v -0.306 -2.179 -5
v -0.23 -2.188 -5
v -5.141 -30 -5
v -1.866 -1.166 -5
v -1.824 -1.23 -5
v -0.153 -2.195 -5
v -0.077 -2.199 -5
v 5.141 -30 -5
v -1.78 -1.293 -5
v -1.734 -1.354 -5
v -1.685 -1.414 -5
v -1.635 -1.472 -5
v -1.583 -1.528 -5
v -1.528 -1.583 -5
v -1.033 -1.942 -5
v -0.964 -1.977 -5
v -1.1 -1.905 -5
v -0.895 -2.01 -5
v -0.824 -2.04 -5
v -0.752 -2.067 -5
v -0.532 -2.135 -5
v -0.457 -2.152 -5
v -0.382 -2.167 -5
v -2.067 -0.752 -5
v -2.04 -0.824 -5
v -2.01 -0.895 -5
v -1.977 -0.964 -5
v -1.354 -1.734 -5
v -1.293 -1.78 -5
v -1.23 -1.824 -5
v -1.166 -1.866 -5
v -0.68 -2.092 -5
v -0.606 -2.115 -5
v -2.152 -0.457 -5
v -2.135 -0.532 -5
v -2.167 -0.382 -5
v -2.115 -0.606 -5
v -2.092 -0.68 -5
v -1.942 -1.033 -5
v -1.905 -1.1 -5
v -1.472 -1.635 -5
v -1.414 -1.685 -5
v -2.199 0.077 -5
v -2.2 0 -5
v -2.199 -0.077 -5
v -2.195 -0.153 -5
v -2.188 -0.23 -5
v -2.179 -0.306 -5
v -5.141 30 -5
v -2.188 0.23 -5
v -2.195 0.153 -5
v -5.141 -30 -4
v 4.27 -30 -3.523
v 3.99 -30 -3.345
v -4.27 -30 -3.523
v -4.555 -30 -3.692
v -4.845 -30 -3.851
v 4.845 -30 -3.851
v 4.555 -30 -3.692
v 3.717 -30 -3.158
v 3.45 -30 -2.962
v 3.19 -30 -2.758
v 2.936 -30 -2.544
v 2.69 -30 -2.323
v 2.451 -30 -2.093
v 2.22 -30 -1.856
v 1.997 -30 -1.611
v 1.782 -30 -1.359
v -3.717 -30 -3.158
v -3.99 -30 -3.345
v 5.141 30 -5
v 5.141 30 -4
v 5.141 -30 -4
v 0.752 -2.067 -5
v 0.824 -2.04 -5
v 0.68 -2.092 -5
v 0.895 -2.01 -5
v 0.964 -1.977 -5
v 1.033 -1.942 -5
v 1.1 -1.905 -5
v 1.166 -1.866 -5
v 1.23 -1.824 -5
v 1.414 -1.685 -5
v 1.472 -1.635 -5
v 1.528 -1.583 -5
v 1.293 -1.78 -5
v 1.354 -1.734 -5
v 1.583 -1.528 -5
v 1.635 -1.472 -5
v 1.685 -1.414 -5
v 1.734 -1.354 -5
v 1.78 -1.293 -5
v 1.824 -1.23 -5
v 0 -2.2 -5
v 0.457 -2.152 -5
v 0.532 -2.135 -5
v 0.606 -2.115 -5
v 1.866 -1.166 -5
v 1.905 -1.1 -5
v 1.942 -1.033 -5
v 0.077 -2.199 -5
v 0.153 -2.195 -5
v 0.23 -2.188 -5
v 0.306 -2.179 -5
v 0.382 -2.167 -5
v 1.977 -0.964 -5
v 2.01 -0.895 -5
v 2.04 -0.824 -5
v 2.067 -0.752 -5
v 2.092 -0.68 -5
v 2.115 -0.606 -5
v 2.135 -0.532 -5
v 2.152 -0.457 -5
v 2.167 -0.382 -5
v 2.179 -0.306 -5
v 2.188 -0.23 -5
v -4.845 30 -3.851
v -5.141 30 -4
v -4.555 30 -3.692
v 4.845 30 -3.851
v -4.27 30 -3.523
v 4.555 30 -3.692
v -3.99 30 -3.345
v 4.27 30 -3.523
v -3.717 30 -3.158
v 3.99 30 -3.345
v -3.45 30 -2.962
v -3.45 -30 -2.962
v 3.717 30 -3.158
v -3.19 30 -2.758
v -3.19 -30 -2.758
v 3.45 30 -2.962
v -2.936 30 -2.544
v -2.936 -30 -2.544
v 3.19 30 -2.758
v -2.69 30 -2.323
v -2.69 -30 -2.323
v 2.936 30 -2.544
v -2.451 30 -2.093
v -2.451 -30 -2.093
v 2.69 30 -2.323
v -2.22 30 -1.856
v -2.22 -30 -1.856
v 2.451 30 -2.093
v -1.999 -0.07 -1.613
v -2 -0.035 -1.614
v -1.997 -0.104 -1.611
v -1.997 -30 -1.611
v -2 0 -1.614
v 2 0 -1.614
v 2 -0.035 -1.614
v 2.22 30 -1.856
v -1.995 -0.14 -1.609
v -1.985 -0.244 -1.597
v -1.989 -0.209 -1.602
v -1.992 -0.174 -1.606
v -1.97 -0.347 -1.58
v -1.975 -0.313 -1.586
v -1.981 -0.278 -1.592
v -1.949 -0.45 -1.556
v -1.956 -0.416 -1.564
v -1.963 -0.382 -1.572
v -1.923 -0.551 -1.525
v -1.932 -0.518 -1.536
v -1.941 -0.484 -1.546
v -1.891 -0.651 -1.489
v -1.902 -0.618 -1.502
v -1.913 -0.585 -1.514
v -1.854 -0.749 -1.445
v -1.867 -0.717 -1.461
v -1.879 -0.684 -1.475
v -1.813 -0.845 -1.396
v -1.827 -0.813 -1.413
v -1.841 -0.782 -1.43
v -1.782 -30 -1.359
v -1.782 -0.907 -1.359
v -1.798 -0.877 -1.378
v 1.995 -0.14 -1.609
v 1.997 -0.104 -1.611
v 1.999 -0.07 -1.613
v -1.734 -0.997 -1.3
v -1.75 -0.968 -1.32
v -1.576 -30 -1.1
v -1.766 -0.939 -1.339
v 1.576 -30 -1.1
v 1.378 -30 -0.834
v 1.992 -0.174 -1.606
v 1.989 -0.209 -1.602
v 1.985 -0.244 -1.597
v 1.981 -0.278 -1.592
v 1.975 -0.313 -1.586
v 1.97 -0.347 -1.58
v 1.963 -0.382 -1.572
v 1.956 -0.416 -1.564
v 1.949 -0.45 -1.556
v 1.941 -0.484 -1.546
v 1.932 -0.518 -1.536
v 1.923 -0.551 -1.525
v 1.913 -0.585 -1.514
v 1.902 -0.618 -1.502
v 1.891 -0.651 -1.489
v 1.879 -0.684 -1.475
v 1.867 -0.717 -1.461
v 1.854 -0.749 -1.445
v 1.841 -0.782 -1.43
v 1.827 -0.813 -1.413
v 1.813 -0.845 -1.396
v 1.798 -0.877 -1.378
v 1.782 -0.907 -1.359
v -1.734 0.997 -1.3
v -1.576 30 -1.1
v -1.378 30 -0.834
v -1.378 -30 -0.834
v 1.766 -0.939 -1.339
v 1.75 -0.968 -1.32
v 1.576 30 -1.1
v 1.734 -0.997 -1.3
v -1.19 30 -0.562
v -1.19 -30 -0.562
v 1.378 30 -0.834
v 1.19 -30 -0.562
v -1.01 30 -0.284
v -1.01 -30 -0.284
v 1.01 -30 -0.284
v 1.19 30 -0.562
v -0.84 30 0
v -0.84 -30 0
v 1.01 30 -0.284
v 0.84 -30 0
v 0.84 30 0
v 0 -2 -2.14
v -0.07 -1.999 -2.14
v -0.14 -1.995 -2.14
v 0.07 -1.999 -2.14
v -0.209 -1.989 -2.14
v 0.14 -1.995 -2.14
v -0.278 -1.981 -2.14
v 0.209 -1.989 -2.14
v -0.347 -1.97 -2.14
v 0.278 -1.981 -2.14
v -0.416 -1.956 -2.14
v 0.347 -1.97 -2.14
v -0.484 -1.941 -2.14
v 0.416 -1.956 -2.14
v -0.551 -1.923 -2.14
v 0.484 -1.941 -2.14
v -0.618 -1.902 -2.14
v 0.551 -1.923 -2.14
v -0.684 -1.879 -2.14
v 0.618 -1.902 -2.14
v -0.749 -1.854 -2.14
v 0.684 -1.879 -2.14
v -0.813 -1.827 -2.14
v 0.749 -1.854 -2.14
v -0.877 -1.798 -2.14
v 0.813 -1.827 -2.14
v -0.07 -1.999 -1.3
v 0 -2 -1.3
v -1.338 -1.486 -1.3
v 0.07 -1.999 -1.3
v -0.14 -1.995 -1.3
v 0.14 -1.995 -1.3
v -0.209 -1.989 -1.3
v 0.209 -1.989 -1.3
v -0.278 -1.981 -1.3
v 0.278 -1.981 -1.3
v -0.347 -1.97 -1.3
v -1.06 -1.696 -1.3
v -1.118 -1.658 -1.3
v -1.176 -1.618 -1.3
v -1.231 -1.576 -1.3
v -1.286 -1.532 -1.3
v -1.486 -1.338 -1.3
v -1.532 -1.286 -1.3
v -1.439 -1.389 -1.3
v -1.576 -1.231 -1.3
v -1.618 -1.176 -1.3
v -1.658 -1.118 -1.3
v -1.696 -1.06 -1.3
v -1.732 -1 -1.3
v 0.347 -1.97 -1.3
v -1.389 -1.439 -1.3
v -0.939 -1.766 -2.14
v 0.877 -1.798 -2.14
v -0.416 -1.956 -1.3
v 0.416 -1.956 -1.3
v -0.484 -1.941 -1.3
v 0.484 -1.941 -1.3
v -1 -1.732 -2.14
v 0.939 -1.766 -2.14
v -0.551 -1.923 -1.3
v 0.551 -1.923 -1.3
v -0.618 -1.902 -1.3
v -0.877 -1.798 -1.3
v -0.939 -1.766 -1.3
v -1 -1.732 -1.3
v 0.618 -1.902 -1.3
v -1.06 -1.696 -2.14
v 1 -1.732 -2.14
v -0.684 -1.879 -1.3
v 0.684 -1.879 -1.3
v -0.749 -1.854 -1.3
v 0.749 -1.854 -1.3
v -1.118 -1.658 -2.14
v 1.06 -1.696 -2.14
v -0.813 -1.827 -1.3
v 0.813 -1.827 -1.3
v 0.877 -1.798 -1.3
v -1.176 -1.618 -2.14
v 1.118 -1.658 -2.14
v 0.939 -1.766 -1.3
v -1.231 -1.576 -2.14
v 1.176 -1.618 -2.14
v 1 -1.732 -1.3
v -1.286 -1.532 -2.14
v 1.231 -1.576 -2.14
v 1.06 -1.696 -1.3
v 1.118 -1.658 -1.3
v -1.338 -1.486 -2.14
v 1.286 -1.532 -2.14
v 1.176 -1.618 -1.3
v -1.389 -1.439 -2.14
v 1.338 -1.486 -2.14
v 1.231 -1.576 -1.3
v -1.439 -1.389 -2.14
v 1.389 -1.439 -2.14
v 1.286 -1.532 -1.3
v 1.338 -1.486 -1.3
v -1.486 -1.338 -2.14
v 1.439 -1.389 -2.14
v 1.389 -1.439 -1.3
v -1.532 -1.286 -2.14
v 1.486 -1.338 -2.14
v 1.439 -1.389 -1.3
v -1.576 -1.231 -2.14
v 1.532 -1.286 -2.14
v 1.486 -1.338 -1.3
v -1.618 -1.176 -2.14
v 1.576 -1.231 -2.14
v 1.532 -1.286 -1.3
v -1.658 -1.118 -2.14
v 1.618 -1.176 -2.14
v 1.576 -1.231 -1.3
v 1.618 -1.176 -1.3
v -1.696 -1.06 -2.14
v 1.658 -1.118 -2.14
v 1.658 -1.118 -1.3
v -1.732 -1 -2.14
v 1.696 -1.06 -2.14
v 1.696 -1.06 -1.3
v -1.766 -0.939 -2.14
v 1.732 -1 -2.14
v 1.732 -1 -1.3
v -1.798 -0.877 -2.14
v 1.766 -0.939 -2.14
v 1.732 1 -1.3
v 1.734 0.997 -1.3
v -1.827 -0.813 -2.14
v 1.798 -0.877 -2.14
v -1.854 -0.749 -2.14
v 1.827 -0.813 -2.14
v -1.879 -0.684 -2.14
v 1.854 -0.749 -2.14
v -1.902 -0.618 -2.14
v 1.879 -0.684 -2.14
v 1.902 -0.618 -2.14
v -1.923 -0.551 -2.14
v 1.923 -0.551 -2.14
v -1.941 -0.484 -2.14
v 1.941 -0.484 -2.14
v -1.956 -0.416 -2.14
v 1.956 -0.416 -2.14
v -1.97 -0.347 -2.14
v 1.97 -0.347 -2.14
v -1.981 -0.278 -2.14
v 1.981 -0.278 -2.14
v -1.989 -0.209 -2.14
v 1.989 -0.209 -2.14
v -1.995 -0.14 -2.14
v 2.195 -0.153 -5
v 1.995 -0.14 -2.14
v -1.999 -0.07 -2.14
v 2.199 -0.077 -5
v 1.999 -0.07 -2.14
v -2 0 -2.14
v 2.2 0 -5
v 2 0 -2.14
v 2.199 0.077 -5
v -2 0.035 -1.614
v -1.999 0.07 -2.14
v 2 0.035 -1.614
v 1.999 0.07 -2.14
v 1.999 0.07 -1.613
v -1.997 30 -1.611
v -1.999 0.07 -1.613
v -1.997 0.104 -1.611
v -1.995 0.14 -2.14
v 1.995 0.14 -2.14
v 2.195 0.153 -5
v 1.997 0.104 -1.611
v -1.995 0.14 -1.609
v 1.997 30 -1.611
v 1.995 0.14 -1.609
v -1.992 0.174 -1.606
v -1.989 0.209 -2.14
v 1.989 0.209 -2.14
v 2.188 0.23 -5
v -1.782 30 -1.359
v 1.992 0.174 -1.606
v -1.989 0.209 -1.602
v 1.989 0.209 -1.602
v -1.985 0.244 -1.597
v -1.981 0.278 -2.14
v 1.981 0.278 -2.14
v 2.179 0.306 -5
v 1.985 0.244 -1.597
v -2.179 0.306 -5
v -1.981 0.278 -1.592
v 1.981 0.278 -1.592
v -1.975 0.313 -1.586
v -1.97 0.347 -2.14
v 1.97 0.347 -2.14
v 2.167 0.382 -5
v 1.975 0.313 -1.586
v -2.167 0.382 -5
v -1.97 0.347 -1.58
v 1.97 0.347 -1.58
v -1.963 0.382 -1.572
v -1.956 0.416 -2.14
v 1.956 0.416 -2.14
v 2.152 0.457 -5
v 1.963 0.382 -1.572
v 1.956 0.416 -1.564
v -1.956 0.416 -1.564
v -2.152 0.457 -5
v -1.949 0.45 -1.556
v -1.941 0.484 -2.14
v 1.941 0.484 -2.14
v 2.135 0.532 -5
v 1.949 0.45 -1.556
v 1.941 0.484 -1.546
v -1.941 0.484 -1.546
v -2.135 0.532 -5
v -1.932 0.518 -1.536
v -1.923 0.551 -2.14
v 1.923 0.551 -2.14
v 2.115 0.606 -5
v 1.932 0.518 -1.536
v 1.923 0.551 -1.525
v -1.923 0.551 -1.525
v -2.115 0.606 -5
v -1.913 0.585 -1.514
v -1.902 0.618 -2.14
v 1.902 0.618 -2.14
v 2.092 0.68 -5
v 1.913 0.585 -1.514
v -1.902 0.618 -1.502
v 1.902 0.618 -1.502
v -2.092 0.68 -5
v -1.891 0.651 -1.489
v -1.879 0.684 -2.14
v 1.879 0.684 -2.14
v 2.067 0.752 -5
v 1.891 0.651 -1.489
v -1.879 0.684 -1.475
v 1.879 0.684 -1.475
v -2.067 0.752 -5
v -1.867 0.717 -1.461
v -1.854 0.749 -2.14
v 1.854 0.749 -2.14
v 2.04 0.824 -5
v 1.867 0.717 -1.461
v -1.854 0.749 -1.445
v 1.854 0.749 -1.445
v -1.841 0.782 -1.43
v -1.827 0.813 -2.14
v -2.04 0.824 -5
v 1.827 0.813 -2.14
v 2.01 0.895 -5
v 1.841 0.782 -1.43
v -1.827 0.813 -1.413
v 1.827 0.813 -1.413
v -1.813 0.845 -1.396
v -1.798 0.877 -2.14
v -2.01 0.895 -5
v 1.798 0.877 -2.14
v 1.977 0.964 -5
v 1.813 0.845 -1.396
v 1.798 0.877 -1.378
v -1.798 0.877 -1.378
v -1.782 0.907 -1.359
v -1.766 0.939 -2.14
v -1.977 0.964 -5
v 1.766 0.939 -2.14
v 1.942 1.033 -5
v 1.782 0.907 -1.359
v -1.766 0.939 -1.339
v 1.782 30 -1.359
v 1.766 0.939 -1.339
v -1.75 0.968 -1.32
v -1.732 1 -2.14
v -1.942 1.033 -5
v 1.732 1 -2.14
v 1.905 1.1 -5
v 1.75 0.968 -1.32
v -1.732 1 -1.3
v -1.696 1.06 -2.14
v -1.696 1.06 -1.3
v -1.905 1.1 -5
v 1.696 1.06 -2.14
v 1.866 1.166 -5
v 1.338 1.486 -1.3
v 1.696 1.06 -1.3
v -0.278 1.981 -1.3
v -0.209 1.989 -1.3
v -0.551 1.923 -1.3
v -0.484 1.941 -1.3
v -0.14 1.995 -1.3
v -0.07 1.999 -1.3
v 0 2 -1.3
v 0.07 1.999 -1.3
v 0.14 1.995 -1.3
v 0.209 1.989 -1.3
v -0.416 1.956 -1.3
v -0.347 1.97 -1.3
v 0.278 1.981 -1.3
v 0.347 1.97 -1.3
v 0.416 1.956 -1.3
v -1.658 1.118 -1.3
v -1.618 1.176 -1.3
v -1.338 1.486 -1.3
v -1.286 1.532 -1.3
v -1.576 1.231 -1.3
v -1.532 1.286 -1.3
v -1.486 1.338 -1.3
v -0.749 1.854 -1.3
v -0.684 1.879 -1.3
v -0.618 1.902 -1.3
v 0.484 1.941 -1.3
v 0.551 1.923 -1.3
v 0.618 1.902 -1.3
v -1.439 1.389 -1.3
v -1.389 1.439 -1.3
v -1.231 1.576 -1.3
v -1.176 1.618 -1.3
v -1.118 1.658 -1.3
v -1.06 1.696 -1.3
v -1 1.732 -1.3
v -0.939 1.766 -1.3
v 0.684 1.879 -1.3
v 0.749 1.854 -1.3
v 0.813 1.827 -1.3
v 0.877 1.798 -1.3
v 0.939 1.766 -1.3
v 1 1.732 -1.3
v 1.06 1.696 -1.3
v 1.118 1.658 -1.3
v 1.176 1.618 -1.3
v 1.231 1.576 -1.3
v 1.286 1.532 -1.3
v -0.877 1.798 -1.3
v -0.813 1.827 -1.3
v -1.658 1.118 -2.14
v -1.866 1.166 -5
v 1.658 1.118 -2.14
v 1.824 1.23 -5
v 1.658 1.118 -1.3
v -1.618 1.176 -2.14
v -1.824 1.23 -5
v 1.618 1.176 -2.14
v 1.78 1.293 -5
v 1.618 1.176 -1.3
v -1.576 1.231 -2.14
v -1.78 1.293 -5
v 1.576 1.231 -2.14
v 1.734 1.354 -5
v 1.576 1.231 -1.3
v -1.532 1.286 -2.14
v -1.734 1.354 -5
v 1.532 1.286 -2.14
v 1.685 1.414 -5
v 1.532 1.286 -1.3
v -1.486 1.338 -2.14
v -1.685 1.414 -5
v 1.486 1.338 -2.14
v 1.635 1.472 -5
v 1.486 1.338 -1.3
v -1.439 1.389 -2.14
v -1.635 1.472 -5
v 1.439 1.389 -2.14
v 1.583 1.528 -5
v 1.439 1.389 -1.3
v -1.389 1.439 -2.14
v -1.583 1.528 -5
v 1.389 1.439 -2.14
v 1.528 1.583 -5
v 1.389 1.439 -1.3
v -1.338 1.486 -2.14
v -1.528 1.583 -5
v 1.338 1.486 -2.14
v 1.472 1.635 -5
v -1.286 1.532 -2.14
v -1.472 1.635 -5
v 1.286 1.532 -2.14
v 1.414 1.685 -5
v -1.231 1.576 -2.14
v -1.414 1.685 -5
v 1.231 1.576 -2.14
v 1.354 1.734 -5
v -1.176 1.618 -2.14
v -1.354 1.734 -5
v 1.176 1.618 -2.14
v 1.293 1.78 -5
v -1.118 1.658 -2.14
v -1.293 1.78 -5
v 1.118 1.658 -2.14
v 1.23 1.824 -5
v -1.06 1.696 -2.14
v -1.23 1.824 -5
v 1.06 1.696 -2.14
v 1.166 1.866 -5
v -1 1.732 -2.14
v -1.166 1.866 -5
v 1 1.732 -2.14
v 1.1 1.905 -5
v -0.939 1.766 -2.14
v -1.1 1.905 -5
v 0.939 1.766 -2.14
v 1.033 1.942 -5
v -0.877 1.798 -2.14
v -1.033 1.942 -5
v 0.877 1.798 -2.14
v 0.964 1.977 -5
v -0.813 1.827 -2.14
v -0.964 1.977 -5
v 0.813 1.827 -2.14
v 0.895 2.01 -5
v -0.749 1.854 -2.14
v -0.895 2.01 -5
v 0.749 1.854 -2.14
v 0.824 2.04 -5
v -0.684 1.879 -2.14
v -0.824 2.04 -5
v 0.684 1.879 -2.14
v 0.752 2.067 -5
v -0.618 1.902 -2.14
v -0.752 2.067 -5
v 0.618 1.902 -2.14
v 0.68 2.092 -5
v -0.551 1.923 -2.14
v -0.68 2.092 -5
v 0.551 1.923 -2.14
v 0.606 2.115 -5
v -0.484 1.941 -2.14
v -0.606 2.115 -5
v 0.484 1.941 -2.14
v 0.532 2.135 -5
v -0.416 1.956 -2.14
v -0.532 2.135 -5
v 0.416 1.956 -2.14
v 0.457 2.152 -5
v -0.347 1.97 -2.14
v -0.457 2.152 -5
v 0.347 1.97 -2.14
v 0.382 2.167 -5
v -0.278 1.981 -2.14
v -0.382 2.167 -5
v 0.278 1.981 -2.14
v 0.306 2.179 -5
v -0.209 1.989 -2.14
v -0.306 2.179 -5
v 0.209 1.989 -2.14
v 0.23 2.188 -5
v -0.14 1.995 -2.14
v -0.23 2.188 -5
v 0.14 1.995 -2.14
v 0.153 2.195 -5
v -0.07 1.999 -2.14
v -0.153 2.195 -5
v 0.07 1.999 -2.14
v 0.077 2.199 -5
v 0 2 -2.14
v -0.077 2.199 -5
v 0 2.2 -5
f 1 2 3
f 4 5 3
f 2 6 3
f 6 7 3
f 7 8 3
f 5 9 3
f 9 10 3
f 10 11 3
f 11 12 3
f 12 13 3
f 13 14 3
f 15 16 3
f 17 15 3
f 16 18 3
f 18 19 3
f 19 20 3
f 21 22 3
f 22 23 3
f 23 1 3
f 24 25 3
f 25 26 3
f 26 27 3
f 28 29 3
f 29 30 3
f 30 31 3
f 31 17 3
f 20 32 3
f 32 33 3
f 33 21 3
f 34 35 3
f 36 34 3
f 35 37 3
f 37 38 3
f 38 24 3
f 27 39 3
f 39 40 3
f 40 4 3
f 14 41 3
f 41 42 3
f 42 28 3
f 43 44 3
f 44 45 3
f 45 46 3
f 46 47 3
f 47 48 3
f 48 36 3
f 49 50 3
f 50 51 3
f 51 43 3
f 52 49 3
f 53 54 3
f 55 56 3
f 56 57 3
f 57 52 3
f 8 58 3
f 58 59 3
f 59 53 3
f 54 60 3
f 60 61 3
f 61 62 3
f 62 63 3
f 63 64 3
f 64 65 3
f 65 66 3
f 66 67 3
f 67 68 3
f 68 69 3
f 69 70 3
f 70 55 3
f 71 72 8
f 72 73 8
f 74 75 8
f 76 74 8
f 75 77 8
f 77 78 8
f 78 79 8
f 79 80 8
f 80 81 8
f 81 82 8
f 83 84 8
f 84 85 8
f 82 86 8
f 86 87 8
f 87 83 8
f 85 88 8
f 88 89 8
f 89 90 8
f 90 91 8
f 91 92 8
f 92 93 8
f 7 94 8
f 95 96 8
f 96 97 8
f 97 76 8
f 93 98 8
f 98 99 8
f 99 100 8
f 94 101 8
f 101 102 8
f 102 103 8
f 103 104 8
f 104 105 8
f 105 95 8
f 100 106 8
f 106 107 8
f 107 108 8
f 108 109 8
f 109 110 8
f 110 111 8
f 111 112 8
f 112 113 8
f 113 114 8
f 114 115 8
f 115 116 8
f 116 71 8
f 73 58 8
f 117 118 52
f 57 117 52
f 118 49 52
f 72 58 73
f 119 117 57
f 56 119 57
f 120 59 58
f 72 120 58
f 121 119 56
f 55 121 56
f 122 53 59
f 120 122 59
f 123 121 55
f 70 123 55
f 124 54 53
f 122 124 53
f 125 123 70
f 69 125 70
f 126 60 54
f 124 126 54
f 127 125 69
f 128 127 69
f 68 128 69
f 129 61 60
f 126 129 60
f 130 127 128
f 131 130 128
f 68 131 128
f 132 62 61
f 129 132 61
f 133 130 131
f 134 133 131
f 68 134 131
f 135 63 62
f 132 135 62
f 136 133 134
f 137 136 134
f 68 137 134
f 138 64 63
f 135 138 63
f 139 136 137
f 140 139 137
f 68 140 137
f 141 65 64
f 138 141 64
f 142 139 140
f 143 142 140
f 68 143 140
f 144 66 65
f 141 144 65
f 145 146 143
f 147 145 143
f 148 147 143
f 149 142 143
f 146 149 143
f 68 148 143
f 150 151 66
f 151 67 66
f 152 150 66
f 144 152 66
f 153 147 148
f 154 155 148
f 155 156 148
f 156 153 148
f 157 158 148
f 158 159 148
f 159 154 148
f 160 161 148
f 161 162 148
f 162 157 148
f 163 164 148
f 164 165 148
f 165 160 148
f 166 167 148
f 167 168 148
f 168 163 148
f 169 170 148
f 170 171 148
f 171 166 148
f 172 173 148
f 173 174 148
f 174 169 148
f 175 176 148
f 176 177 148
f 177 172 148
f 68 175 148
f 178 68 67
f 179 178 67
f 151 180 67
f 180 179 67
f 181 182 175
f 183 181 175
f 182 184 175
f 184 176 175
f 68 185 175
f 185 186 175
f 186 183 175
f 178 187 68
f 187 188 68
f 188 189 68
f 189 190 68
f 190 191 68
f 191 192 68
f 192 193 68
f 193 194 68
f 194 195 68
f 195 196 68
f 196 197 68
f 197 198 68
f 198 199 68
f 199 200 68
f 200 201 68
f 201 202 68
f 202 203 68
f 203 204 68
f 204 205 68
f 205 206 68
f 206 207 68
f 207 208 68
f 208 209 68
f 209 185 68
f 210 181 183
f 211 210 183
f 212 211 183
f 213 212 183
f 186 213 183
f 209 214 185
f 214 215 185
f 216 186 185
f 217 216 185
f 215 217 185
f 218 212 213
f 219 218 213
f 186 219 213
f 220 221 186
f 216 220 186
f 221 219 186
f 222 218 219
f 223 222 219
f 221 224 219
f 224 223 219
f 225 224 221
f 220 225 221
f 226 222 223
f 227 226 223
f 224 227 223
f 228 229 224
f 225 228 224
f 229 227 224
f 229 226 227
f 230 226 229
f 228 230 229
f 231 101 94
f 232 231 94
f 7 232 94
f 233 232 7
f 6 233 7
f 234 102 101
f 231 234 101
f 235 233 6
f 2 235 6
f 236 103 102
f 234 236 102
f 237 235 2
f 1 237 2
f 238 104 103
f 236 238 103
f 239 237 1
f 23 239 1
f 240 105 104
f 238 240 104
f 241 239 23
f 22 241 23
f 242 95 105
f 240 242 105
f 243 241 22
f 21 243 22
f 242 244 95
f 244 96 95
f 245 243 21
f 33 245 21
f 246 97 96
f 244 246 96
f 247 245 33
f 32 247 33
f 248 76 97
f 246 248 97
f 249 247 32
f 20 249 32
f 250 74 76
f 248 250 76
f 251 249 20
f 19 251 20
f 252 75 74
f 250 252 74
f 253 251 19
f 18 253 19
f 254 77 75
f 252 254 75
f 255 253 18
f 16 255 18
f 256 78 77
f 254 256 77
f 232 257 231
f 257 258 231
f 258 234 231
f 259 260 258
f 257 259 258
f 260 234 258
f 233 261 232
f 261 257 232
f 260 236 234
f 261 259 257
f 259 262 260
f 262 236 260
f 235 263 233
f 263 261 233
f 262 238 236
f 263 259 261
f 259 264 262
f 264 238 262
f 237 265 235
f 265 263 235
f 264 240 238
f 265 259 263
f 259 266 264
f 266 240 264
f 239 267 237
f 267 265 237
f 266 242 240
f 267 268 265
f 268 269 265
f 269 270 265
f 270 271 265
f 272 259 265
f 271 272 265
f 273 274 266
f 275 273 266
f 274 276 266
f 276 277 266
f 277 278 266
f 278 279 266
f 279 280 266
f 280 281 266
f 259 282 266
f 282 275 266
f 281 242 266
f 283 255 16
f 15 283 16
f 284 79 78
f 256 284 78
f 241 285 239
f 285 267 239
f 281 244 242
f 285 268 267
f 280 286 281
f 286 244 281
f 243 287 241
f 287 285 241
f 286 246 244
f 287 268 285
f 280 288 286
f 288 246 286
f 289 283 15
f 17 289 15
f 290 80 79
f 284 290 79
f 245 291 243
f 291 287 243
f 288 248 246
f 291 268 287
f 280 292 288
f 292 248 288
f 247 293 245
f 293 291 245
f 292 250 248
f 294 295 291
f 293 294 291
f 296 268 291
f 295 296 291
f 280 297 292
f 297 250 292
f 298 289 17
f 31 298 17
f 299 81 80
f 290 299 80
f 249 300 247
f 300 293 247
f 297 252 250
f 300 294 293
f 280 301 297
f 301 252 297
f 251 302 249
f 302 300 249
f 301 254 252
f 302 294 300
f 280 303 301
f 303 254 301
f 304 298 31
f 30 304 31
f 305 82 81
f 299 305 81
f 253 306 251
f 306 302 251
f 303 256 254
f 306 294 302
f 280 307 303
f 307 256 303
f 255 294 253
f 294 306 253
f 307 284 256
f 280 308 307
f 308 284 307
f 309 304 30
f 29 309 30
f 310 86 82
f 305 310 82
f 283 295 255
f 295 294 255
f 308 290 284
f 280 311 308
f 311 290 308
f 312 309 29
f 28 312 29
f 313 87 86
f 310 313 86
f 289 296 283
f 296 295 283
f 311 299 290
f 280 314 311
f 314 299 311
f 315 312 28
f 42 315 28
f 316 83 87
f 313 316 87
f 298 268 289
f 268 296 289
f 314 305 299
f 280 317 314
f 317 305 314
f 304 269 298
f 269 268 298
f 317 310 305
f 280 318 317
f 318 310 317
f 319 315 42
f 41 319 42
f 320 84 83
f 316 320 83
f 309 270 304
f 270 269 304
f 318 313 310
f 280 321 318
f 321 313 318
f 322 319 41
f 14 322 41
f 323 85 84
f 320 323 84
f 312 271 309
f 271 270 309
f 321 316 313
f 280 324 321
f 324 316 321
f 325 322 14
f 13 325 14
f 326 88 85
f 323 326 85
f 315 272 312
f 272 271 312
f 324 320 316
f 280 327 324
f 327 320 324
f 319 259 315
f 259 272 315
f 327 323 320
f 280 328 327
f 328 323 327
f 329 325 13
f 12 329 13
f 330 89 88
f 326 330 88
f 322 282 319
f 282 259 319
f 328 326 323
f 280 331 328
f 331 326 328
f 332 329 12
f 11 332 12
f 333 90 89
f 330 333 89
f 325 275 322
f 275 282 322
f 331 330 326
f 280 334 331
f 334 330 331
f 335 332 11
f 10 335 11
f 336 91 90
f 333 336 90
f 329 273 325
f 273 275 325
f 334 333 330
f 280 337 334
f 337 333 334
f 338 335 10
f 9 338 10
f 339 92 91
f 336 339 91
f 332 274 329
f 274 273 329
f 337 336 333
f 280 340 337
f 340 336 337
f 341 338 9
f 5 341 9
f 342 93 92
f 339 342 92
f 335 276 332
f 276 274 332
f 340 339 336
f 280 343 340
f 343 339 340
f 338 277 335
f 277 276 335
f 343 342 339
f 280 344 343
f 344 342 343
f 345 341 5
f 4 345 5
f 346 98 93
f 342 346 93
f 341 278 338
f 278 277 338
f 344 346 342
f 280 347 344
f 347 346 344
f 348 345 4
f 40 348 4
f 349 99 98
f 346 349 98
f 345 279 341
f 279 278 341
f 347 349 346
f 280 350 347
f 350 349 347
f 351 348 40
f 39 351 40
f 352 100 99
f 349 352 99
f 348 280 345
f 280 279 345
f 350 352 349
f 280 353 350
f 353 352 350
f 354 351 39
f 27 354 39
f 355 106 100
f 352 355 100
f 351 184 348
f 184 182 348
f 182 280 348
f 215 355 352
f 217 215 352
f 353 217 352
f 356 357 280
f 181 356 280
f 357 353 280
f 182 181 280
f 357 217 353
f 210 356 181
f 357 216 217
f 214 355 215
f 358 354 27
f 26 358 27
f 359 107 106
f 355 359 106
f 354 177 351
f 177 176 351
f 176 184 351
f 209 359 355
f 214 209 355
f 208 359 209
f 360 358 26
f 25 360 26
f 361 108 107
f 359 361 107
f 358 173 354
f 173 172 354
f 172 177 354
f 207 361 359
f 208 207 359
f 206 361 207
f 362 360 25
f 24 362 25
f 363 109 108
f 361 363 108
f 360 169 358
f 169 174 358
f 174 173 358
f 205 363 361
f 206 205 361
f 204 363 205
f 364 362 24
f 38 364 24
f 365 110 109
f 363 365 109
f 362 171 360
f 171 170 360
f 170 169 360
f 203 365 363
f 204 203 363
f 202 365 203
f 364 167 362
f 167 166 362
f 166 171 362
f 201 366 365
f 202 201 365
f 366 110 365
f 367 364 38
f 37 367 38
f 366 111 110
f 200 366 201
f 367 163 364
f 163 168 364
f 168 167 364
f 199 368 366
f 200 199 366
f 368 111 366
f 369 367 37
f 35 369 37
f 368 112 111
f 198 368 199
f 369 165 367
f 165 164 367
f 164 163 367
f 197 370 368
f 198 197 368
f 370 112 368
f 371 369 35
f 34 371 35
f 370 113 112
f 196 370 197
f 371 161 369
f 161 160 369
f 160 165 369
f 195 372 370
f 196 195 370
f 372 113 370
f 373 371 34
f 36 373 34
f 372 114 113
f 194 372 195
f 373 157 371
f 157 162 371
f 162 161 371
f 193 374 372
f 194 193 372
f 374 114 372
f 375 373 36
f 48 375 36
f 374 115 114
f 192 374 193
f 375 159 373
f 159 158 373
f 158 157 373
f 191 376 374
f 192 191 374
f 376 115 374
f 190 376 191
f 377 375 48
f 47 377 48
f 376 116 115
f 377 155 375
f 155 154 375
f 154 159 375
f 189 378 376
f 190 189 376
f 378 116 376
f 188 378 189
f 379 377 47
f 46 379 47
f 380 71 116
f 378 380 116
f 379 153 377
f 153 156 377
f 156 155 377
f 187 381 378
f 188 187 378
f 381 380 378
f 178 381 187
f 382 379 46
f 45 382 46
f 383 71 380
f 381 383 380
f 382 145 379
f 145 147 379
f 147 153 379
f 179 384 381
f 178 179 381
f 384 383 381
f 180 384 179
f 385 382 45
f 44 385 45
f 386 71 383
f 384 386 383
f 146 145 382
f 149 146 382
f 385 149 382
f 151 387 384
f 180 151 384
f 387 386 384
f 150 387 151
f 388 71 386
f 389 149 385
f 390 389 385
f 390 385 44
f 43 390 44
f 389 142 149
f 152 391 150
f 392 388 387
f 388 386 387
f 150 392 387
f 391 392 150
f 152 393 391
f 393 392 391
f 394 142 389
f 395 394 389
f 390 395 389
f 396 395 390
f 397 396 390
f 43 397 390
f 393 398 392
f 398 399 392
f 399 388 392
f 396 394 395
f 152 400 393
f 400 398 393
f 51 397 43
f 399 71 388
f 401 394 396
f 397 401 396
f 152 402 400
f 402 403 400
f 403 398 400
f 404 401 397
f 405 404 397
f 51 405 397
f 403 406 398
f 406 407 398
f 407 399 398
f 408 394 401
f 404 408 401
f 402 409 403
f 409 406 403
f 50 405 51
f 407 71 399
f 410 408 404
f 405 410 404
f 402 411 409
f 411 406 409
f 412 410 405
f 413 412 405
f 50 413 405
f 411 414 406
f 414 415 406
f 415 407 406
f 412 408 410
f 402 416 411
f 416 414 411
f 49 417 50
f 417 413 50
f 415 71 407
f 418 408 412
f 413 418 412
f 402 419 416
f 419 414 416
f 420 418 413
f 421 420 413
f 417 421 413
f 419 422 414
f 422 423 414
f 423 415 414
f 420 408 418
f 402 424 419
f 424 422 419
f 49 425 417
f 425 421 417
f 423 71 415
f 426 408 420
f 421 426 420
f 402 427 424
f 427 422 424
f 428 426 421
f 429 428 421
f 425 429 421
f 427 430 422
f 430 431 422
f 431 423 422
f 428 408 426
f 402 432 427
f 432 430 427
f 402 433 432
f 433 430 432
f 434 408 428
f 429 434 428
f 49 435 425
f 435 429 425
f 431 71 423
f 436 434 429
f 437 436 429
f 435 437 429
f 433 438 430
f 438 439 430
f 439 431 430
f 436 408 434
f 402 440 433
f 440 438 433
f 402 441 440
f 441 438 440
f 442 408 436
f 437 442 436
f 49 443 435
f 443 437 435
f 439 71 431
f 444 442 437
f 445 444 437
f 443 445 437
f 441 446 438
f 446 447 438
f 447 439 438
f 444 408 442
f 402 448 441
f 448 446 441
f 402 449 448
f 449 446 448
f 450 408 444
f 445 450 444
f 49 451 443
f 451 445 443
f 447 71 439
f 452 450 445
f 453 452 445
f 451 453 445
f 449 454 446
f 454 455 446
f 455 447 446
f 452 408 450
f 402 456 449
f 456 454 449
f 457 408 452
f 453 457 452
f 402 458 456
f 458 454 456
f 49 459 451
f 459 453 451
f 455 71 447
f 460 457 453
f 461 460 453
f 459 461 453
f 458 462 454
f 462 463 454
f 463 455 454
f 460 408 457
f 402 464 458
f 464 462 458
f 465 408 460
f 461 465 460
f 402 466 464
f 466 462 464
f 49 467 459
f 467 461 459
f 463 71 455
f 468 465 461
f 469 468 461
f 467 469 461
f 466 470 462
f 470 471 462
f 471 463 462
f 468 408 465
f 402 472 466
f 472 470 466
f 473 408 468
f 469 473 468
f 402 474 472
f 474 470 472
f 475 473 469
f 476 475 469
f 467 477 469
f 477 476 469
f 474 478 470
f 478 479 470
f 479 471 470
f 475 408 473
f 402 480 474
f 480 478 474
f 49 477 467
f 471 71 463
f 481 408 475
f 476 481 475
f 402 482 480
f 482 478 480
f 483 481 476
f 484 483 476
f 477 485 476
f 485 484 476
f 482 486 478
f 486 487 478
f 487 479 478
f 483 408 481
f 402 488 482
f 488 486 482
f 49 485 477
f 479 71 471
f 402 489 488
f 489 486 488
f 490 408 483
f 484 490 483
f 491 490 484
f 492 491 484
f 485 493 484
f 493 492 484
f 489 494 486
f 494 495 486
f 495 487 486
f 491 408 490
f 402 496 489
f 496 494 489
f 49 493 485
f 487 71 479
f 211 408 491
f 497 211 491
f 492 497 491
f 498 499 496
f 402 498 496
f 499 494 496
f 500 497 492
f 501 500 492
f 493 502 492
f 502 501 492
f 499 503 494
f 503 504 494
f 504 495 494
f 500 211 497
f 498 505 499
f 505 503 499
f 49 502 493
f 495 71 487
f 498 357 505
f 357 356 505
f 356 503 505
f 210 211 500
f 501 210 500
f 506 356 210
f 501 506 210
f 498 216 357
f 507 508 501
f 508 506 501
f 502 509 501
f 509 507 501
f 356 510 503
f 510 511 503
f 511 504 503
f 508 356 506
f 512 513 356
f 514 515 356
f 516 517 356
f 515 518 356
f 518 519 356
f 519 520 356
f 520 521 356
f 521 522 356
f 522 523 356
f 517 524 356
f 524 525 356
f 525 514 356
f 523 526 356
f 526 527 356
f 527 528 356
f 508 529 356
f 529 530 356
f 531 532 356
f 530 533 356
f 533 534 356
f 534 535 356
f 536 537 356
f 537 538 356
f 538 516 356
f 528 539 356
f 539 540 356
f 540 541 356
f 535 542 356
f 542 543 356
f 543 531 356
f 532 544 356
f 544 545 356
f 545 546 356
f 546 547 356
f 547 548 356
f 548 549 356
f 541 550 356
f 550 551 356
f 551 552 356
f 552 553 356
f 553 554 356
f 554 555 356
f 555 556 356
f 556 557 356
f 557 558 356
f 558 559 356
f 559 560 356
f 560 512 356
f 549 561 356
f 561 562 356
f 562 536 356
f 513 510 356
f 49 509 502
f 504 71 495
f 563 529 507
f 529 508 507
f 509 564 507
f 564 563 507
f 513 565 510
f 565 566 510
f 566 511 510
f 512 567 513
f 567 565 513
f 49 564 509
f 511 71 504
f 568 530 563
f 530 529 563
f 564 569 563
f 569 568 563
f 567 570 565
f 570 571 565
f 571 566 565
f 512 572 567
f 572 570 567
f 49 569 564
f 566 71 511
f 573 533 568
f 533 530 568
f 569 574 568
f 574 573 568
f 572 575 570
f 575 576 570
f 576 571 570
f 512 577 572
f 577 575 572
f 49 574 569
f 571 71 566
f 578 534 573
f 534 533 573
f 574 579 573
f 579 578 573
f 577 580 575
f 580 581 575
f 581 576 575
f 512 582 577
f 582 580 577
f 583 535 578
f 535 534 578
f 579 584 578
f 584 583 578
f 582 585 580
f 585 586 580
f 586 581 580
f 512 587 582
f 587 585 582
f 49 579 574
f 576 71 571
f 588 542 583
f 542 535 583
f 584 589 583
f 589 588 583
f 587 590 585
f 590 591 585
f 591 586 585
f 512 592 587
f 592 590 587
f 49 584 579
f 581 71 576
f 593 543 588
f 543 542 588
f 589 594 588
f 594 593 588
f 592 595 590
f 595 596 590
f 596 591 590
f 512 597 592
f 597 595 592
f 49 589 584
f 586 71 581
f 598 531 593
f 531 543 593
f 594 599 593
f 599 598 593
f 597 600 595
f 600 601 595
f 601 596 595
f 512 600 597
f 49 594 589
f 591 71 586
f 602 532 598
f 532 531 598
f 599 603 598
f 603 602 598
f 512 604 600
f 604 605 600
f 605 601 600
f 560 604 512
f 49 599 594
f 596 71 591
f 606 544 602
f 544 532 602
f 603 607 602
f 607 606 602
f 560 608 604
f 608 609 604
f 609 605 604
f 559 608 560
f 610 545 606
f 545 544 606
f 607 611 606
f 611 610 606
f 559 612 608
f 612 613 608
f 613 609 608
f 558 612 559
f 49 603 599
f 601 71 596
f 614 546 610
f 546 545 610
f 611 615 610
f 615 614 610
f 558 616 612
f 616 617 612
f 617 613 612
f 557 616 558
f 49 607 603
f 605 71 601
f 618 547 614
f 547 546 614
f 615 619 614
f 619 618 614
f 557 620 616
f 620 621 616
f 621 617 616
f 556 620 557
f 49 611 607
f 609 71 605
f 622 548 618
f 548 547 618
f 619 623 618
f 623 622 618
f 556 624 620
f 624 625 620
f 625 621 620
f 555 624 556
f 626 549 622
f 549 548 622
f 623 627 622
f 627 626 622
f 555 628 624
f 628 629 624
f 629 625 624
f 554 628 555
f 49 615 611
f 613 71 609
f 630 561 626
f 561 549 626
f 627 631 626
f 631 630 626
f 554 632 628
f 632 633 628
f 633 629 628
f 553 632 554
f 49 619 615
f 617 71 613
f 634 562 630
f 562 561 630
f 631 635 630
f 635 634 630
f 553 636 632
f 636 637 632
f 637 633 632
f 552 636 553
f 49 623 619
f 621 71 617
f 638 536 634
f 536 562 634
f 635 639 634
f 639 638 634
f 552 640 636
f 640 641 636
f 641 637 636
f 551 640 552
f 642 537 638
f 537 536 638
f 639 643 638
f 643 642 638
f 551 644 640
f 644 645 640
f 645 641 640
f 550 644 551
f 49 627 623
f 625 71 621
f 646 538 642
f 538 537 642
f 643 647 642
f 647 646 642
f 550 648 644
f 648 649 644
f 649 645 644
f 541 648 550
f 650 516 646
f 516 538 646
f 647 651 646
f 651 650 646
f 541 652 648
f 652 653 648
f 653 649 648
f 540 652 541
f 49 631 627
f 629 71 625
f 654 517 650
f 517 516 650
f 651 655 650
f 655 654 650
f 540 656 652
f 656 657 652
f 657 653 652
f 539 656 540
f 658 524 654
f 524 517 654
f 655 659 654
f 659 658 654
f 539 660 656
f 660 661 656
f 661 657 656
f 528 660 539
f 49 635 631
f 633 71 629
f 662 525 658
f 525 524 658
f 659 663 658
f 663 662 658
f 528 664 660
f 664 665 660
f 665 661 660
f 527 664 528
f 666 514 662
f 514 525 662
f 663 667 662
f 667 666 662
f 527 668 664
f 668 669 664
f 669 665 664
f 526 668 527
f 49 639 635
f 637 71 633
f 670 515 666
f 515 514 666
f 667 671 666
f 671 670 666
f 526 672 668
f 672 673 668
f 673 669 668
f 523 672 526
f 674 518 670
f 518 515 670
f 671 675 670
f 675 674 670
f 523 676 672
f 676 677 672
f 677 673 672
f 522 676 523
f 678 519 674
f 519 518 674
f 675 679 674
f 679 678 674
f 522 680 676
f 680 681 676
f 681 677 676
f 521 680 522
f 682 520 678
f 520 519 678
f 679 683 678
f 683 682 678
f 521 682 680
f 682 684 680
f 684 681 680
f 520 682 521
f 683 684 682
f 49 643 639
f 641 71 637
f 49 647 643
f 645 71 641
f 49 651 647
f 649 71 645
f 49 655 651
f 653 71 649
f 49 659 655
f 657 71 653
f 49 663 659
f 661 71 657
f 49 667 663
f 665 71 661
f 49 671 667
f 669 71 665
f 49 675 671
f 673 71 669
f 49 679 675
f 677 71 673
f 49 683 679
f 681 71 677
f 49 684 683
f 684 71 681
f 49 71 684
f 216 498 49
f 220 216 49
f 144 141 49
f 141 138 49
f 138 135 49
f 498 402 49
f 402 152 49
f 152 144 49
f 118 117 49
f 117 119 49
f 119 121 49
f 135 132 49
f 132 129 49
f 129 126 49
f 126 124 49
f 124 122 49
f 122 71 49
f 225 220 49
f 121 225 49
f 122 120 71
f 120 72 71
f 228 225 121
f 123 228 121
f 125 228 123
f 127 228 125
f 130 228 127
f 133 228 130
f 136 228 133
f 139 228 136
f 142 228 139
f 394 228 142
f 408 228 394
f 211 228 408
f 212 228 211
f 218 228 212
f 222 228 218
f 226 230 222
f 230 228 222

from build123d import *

# Parameters (mm, degrees)
BOSS_EXTRUDE1_DEPTH = 30


with BuildPart() as part:
    # Sketch1 → Boss-Extrude1 (new, symmetric)
    with BuildSketch(Plane(origin=(0, 0, 0), x_dir=(1, 0, 0), z_dir=(0, 1, 0))):
        with BuildLine():
            Line((-0.839745962, 0), (0.839745962, 0))
            ThreePointArc((0.839745962, 0), (2.690111154, 2.322937519), (5.141101056, 4))
            Line((5.141101056, 4), (5.141101056, 5))
            Line((5.141101056, 5), (-5.141101056, 5))
            Line((-5.141101056, 5), (-5.141101056, 4))
            ThreePointArc((-5.141101056, 4), (-2.690111154, 2.322937519), (-0.839745962, 0))
        make_face()
    extrude(amount=BOSS_EXTRUDE1_DEPTH, both=True)

    # Sketch8 → #24 (0.152) Diameter Hole1 (revolve, cut)
    with BuildSketch(Plane(origin=(0, 0, -5), x_dir=(0, 1, 0), z_dir=(1, 0, 0))):
        Polygon((0, 0), (0, 3.7), (1.999999937, 3.7), (1.999999937, 2.860134796), (2.200000045, 0), align=None)
    revolve(axis=Axis((0, 0, -11.35), (0, 0, 1)), mode=Mode.SUBTRACT)


solid = part.part
